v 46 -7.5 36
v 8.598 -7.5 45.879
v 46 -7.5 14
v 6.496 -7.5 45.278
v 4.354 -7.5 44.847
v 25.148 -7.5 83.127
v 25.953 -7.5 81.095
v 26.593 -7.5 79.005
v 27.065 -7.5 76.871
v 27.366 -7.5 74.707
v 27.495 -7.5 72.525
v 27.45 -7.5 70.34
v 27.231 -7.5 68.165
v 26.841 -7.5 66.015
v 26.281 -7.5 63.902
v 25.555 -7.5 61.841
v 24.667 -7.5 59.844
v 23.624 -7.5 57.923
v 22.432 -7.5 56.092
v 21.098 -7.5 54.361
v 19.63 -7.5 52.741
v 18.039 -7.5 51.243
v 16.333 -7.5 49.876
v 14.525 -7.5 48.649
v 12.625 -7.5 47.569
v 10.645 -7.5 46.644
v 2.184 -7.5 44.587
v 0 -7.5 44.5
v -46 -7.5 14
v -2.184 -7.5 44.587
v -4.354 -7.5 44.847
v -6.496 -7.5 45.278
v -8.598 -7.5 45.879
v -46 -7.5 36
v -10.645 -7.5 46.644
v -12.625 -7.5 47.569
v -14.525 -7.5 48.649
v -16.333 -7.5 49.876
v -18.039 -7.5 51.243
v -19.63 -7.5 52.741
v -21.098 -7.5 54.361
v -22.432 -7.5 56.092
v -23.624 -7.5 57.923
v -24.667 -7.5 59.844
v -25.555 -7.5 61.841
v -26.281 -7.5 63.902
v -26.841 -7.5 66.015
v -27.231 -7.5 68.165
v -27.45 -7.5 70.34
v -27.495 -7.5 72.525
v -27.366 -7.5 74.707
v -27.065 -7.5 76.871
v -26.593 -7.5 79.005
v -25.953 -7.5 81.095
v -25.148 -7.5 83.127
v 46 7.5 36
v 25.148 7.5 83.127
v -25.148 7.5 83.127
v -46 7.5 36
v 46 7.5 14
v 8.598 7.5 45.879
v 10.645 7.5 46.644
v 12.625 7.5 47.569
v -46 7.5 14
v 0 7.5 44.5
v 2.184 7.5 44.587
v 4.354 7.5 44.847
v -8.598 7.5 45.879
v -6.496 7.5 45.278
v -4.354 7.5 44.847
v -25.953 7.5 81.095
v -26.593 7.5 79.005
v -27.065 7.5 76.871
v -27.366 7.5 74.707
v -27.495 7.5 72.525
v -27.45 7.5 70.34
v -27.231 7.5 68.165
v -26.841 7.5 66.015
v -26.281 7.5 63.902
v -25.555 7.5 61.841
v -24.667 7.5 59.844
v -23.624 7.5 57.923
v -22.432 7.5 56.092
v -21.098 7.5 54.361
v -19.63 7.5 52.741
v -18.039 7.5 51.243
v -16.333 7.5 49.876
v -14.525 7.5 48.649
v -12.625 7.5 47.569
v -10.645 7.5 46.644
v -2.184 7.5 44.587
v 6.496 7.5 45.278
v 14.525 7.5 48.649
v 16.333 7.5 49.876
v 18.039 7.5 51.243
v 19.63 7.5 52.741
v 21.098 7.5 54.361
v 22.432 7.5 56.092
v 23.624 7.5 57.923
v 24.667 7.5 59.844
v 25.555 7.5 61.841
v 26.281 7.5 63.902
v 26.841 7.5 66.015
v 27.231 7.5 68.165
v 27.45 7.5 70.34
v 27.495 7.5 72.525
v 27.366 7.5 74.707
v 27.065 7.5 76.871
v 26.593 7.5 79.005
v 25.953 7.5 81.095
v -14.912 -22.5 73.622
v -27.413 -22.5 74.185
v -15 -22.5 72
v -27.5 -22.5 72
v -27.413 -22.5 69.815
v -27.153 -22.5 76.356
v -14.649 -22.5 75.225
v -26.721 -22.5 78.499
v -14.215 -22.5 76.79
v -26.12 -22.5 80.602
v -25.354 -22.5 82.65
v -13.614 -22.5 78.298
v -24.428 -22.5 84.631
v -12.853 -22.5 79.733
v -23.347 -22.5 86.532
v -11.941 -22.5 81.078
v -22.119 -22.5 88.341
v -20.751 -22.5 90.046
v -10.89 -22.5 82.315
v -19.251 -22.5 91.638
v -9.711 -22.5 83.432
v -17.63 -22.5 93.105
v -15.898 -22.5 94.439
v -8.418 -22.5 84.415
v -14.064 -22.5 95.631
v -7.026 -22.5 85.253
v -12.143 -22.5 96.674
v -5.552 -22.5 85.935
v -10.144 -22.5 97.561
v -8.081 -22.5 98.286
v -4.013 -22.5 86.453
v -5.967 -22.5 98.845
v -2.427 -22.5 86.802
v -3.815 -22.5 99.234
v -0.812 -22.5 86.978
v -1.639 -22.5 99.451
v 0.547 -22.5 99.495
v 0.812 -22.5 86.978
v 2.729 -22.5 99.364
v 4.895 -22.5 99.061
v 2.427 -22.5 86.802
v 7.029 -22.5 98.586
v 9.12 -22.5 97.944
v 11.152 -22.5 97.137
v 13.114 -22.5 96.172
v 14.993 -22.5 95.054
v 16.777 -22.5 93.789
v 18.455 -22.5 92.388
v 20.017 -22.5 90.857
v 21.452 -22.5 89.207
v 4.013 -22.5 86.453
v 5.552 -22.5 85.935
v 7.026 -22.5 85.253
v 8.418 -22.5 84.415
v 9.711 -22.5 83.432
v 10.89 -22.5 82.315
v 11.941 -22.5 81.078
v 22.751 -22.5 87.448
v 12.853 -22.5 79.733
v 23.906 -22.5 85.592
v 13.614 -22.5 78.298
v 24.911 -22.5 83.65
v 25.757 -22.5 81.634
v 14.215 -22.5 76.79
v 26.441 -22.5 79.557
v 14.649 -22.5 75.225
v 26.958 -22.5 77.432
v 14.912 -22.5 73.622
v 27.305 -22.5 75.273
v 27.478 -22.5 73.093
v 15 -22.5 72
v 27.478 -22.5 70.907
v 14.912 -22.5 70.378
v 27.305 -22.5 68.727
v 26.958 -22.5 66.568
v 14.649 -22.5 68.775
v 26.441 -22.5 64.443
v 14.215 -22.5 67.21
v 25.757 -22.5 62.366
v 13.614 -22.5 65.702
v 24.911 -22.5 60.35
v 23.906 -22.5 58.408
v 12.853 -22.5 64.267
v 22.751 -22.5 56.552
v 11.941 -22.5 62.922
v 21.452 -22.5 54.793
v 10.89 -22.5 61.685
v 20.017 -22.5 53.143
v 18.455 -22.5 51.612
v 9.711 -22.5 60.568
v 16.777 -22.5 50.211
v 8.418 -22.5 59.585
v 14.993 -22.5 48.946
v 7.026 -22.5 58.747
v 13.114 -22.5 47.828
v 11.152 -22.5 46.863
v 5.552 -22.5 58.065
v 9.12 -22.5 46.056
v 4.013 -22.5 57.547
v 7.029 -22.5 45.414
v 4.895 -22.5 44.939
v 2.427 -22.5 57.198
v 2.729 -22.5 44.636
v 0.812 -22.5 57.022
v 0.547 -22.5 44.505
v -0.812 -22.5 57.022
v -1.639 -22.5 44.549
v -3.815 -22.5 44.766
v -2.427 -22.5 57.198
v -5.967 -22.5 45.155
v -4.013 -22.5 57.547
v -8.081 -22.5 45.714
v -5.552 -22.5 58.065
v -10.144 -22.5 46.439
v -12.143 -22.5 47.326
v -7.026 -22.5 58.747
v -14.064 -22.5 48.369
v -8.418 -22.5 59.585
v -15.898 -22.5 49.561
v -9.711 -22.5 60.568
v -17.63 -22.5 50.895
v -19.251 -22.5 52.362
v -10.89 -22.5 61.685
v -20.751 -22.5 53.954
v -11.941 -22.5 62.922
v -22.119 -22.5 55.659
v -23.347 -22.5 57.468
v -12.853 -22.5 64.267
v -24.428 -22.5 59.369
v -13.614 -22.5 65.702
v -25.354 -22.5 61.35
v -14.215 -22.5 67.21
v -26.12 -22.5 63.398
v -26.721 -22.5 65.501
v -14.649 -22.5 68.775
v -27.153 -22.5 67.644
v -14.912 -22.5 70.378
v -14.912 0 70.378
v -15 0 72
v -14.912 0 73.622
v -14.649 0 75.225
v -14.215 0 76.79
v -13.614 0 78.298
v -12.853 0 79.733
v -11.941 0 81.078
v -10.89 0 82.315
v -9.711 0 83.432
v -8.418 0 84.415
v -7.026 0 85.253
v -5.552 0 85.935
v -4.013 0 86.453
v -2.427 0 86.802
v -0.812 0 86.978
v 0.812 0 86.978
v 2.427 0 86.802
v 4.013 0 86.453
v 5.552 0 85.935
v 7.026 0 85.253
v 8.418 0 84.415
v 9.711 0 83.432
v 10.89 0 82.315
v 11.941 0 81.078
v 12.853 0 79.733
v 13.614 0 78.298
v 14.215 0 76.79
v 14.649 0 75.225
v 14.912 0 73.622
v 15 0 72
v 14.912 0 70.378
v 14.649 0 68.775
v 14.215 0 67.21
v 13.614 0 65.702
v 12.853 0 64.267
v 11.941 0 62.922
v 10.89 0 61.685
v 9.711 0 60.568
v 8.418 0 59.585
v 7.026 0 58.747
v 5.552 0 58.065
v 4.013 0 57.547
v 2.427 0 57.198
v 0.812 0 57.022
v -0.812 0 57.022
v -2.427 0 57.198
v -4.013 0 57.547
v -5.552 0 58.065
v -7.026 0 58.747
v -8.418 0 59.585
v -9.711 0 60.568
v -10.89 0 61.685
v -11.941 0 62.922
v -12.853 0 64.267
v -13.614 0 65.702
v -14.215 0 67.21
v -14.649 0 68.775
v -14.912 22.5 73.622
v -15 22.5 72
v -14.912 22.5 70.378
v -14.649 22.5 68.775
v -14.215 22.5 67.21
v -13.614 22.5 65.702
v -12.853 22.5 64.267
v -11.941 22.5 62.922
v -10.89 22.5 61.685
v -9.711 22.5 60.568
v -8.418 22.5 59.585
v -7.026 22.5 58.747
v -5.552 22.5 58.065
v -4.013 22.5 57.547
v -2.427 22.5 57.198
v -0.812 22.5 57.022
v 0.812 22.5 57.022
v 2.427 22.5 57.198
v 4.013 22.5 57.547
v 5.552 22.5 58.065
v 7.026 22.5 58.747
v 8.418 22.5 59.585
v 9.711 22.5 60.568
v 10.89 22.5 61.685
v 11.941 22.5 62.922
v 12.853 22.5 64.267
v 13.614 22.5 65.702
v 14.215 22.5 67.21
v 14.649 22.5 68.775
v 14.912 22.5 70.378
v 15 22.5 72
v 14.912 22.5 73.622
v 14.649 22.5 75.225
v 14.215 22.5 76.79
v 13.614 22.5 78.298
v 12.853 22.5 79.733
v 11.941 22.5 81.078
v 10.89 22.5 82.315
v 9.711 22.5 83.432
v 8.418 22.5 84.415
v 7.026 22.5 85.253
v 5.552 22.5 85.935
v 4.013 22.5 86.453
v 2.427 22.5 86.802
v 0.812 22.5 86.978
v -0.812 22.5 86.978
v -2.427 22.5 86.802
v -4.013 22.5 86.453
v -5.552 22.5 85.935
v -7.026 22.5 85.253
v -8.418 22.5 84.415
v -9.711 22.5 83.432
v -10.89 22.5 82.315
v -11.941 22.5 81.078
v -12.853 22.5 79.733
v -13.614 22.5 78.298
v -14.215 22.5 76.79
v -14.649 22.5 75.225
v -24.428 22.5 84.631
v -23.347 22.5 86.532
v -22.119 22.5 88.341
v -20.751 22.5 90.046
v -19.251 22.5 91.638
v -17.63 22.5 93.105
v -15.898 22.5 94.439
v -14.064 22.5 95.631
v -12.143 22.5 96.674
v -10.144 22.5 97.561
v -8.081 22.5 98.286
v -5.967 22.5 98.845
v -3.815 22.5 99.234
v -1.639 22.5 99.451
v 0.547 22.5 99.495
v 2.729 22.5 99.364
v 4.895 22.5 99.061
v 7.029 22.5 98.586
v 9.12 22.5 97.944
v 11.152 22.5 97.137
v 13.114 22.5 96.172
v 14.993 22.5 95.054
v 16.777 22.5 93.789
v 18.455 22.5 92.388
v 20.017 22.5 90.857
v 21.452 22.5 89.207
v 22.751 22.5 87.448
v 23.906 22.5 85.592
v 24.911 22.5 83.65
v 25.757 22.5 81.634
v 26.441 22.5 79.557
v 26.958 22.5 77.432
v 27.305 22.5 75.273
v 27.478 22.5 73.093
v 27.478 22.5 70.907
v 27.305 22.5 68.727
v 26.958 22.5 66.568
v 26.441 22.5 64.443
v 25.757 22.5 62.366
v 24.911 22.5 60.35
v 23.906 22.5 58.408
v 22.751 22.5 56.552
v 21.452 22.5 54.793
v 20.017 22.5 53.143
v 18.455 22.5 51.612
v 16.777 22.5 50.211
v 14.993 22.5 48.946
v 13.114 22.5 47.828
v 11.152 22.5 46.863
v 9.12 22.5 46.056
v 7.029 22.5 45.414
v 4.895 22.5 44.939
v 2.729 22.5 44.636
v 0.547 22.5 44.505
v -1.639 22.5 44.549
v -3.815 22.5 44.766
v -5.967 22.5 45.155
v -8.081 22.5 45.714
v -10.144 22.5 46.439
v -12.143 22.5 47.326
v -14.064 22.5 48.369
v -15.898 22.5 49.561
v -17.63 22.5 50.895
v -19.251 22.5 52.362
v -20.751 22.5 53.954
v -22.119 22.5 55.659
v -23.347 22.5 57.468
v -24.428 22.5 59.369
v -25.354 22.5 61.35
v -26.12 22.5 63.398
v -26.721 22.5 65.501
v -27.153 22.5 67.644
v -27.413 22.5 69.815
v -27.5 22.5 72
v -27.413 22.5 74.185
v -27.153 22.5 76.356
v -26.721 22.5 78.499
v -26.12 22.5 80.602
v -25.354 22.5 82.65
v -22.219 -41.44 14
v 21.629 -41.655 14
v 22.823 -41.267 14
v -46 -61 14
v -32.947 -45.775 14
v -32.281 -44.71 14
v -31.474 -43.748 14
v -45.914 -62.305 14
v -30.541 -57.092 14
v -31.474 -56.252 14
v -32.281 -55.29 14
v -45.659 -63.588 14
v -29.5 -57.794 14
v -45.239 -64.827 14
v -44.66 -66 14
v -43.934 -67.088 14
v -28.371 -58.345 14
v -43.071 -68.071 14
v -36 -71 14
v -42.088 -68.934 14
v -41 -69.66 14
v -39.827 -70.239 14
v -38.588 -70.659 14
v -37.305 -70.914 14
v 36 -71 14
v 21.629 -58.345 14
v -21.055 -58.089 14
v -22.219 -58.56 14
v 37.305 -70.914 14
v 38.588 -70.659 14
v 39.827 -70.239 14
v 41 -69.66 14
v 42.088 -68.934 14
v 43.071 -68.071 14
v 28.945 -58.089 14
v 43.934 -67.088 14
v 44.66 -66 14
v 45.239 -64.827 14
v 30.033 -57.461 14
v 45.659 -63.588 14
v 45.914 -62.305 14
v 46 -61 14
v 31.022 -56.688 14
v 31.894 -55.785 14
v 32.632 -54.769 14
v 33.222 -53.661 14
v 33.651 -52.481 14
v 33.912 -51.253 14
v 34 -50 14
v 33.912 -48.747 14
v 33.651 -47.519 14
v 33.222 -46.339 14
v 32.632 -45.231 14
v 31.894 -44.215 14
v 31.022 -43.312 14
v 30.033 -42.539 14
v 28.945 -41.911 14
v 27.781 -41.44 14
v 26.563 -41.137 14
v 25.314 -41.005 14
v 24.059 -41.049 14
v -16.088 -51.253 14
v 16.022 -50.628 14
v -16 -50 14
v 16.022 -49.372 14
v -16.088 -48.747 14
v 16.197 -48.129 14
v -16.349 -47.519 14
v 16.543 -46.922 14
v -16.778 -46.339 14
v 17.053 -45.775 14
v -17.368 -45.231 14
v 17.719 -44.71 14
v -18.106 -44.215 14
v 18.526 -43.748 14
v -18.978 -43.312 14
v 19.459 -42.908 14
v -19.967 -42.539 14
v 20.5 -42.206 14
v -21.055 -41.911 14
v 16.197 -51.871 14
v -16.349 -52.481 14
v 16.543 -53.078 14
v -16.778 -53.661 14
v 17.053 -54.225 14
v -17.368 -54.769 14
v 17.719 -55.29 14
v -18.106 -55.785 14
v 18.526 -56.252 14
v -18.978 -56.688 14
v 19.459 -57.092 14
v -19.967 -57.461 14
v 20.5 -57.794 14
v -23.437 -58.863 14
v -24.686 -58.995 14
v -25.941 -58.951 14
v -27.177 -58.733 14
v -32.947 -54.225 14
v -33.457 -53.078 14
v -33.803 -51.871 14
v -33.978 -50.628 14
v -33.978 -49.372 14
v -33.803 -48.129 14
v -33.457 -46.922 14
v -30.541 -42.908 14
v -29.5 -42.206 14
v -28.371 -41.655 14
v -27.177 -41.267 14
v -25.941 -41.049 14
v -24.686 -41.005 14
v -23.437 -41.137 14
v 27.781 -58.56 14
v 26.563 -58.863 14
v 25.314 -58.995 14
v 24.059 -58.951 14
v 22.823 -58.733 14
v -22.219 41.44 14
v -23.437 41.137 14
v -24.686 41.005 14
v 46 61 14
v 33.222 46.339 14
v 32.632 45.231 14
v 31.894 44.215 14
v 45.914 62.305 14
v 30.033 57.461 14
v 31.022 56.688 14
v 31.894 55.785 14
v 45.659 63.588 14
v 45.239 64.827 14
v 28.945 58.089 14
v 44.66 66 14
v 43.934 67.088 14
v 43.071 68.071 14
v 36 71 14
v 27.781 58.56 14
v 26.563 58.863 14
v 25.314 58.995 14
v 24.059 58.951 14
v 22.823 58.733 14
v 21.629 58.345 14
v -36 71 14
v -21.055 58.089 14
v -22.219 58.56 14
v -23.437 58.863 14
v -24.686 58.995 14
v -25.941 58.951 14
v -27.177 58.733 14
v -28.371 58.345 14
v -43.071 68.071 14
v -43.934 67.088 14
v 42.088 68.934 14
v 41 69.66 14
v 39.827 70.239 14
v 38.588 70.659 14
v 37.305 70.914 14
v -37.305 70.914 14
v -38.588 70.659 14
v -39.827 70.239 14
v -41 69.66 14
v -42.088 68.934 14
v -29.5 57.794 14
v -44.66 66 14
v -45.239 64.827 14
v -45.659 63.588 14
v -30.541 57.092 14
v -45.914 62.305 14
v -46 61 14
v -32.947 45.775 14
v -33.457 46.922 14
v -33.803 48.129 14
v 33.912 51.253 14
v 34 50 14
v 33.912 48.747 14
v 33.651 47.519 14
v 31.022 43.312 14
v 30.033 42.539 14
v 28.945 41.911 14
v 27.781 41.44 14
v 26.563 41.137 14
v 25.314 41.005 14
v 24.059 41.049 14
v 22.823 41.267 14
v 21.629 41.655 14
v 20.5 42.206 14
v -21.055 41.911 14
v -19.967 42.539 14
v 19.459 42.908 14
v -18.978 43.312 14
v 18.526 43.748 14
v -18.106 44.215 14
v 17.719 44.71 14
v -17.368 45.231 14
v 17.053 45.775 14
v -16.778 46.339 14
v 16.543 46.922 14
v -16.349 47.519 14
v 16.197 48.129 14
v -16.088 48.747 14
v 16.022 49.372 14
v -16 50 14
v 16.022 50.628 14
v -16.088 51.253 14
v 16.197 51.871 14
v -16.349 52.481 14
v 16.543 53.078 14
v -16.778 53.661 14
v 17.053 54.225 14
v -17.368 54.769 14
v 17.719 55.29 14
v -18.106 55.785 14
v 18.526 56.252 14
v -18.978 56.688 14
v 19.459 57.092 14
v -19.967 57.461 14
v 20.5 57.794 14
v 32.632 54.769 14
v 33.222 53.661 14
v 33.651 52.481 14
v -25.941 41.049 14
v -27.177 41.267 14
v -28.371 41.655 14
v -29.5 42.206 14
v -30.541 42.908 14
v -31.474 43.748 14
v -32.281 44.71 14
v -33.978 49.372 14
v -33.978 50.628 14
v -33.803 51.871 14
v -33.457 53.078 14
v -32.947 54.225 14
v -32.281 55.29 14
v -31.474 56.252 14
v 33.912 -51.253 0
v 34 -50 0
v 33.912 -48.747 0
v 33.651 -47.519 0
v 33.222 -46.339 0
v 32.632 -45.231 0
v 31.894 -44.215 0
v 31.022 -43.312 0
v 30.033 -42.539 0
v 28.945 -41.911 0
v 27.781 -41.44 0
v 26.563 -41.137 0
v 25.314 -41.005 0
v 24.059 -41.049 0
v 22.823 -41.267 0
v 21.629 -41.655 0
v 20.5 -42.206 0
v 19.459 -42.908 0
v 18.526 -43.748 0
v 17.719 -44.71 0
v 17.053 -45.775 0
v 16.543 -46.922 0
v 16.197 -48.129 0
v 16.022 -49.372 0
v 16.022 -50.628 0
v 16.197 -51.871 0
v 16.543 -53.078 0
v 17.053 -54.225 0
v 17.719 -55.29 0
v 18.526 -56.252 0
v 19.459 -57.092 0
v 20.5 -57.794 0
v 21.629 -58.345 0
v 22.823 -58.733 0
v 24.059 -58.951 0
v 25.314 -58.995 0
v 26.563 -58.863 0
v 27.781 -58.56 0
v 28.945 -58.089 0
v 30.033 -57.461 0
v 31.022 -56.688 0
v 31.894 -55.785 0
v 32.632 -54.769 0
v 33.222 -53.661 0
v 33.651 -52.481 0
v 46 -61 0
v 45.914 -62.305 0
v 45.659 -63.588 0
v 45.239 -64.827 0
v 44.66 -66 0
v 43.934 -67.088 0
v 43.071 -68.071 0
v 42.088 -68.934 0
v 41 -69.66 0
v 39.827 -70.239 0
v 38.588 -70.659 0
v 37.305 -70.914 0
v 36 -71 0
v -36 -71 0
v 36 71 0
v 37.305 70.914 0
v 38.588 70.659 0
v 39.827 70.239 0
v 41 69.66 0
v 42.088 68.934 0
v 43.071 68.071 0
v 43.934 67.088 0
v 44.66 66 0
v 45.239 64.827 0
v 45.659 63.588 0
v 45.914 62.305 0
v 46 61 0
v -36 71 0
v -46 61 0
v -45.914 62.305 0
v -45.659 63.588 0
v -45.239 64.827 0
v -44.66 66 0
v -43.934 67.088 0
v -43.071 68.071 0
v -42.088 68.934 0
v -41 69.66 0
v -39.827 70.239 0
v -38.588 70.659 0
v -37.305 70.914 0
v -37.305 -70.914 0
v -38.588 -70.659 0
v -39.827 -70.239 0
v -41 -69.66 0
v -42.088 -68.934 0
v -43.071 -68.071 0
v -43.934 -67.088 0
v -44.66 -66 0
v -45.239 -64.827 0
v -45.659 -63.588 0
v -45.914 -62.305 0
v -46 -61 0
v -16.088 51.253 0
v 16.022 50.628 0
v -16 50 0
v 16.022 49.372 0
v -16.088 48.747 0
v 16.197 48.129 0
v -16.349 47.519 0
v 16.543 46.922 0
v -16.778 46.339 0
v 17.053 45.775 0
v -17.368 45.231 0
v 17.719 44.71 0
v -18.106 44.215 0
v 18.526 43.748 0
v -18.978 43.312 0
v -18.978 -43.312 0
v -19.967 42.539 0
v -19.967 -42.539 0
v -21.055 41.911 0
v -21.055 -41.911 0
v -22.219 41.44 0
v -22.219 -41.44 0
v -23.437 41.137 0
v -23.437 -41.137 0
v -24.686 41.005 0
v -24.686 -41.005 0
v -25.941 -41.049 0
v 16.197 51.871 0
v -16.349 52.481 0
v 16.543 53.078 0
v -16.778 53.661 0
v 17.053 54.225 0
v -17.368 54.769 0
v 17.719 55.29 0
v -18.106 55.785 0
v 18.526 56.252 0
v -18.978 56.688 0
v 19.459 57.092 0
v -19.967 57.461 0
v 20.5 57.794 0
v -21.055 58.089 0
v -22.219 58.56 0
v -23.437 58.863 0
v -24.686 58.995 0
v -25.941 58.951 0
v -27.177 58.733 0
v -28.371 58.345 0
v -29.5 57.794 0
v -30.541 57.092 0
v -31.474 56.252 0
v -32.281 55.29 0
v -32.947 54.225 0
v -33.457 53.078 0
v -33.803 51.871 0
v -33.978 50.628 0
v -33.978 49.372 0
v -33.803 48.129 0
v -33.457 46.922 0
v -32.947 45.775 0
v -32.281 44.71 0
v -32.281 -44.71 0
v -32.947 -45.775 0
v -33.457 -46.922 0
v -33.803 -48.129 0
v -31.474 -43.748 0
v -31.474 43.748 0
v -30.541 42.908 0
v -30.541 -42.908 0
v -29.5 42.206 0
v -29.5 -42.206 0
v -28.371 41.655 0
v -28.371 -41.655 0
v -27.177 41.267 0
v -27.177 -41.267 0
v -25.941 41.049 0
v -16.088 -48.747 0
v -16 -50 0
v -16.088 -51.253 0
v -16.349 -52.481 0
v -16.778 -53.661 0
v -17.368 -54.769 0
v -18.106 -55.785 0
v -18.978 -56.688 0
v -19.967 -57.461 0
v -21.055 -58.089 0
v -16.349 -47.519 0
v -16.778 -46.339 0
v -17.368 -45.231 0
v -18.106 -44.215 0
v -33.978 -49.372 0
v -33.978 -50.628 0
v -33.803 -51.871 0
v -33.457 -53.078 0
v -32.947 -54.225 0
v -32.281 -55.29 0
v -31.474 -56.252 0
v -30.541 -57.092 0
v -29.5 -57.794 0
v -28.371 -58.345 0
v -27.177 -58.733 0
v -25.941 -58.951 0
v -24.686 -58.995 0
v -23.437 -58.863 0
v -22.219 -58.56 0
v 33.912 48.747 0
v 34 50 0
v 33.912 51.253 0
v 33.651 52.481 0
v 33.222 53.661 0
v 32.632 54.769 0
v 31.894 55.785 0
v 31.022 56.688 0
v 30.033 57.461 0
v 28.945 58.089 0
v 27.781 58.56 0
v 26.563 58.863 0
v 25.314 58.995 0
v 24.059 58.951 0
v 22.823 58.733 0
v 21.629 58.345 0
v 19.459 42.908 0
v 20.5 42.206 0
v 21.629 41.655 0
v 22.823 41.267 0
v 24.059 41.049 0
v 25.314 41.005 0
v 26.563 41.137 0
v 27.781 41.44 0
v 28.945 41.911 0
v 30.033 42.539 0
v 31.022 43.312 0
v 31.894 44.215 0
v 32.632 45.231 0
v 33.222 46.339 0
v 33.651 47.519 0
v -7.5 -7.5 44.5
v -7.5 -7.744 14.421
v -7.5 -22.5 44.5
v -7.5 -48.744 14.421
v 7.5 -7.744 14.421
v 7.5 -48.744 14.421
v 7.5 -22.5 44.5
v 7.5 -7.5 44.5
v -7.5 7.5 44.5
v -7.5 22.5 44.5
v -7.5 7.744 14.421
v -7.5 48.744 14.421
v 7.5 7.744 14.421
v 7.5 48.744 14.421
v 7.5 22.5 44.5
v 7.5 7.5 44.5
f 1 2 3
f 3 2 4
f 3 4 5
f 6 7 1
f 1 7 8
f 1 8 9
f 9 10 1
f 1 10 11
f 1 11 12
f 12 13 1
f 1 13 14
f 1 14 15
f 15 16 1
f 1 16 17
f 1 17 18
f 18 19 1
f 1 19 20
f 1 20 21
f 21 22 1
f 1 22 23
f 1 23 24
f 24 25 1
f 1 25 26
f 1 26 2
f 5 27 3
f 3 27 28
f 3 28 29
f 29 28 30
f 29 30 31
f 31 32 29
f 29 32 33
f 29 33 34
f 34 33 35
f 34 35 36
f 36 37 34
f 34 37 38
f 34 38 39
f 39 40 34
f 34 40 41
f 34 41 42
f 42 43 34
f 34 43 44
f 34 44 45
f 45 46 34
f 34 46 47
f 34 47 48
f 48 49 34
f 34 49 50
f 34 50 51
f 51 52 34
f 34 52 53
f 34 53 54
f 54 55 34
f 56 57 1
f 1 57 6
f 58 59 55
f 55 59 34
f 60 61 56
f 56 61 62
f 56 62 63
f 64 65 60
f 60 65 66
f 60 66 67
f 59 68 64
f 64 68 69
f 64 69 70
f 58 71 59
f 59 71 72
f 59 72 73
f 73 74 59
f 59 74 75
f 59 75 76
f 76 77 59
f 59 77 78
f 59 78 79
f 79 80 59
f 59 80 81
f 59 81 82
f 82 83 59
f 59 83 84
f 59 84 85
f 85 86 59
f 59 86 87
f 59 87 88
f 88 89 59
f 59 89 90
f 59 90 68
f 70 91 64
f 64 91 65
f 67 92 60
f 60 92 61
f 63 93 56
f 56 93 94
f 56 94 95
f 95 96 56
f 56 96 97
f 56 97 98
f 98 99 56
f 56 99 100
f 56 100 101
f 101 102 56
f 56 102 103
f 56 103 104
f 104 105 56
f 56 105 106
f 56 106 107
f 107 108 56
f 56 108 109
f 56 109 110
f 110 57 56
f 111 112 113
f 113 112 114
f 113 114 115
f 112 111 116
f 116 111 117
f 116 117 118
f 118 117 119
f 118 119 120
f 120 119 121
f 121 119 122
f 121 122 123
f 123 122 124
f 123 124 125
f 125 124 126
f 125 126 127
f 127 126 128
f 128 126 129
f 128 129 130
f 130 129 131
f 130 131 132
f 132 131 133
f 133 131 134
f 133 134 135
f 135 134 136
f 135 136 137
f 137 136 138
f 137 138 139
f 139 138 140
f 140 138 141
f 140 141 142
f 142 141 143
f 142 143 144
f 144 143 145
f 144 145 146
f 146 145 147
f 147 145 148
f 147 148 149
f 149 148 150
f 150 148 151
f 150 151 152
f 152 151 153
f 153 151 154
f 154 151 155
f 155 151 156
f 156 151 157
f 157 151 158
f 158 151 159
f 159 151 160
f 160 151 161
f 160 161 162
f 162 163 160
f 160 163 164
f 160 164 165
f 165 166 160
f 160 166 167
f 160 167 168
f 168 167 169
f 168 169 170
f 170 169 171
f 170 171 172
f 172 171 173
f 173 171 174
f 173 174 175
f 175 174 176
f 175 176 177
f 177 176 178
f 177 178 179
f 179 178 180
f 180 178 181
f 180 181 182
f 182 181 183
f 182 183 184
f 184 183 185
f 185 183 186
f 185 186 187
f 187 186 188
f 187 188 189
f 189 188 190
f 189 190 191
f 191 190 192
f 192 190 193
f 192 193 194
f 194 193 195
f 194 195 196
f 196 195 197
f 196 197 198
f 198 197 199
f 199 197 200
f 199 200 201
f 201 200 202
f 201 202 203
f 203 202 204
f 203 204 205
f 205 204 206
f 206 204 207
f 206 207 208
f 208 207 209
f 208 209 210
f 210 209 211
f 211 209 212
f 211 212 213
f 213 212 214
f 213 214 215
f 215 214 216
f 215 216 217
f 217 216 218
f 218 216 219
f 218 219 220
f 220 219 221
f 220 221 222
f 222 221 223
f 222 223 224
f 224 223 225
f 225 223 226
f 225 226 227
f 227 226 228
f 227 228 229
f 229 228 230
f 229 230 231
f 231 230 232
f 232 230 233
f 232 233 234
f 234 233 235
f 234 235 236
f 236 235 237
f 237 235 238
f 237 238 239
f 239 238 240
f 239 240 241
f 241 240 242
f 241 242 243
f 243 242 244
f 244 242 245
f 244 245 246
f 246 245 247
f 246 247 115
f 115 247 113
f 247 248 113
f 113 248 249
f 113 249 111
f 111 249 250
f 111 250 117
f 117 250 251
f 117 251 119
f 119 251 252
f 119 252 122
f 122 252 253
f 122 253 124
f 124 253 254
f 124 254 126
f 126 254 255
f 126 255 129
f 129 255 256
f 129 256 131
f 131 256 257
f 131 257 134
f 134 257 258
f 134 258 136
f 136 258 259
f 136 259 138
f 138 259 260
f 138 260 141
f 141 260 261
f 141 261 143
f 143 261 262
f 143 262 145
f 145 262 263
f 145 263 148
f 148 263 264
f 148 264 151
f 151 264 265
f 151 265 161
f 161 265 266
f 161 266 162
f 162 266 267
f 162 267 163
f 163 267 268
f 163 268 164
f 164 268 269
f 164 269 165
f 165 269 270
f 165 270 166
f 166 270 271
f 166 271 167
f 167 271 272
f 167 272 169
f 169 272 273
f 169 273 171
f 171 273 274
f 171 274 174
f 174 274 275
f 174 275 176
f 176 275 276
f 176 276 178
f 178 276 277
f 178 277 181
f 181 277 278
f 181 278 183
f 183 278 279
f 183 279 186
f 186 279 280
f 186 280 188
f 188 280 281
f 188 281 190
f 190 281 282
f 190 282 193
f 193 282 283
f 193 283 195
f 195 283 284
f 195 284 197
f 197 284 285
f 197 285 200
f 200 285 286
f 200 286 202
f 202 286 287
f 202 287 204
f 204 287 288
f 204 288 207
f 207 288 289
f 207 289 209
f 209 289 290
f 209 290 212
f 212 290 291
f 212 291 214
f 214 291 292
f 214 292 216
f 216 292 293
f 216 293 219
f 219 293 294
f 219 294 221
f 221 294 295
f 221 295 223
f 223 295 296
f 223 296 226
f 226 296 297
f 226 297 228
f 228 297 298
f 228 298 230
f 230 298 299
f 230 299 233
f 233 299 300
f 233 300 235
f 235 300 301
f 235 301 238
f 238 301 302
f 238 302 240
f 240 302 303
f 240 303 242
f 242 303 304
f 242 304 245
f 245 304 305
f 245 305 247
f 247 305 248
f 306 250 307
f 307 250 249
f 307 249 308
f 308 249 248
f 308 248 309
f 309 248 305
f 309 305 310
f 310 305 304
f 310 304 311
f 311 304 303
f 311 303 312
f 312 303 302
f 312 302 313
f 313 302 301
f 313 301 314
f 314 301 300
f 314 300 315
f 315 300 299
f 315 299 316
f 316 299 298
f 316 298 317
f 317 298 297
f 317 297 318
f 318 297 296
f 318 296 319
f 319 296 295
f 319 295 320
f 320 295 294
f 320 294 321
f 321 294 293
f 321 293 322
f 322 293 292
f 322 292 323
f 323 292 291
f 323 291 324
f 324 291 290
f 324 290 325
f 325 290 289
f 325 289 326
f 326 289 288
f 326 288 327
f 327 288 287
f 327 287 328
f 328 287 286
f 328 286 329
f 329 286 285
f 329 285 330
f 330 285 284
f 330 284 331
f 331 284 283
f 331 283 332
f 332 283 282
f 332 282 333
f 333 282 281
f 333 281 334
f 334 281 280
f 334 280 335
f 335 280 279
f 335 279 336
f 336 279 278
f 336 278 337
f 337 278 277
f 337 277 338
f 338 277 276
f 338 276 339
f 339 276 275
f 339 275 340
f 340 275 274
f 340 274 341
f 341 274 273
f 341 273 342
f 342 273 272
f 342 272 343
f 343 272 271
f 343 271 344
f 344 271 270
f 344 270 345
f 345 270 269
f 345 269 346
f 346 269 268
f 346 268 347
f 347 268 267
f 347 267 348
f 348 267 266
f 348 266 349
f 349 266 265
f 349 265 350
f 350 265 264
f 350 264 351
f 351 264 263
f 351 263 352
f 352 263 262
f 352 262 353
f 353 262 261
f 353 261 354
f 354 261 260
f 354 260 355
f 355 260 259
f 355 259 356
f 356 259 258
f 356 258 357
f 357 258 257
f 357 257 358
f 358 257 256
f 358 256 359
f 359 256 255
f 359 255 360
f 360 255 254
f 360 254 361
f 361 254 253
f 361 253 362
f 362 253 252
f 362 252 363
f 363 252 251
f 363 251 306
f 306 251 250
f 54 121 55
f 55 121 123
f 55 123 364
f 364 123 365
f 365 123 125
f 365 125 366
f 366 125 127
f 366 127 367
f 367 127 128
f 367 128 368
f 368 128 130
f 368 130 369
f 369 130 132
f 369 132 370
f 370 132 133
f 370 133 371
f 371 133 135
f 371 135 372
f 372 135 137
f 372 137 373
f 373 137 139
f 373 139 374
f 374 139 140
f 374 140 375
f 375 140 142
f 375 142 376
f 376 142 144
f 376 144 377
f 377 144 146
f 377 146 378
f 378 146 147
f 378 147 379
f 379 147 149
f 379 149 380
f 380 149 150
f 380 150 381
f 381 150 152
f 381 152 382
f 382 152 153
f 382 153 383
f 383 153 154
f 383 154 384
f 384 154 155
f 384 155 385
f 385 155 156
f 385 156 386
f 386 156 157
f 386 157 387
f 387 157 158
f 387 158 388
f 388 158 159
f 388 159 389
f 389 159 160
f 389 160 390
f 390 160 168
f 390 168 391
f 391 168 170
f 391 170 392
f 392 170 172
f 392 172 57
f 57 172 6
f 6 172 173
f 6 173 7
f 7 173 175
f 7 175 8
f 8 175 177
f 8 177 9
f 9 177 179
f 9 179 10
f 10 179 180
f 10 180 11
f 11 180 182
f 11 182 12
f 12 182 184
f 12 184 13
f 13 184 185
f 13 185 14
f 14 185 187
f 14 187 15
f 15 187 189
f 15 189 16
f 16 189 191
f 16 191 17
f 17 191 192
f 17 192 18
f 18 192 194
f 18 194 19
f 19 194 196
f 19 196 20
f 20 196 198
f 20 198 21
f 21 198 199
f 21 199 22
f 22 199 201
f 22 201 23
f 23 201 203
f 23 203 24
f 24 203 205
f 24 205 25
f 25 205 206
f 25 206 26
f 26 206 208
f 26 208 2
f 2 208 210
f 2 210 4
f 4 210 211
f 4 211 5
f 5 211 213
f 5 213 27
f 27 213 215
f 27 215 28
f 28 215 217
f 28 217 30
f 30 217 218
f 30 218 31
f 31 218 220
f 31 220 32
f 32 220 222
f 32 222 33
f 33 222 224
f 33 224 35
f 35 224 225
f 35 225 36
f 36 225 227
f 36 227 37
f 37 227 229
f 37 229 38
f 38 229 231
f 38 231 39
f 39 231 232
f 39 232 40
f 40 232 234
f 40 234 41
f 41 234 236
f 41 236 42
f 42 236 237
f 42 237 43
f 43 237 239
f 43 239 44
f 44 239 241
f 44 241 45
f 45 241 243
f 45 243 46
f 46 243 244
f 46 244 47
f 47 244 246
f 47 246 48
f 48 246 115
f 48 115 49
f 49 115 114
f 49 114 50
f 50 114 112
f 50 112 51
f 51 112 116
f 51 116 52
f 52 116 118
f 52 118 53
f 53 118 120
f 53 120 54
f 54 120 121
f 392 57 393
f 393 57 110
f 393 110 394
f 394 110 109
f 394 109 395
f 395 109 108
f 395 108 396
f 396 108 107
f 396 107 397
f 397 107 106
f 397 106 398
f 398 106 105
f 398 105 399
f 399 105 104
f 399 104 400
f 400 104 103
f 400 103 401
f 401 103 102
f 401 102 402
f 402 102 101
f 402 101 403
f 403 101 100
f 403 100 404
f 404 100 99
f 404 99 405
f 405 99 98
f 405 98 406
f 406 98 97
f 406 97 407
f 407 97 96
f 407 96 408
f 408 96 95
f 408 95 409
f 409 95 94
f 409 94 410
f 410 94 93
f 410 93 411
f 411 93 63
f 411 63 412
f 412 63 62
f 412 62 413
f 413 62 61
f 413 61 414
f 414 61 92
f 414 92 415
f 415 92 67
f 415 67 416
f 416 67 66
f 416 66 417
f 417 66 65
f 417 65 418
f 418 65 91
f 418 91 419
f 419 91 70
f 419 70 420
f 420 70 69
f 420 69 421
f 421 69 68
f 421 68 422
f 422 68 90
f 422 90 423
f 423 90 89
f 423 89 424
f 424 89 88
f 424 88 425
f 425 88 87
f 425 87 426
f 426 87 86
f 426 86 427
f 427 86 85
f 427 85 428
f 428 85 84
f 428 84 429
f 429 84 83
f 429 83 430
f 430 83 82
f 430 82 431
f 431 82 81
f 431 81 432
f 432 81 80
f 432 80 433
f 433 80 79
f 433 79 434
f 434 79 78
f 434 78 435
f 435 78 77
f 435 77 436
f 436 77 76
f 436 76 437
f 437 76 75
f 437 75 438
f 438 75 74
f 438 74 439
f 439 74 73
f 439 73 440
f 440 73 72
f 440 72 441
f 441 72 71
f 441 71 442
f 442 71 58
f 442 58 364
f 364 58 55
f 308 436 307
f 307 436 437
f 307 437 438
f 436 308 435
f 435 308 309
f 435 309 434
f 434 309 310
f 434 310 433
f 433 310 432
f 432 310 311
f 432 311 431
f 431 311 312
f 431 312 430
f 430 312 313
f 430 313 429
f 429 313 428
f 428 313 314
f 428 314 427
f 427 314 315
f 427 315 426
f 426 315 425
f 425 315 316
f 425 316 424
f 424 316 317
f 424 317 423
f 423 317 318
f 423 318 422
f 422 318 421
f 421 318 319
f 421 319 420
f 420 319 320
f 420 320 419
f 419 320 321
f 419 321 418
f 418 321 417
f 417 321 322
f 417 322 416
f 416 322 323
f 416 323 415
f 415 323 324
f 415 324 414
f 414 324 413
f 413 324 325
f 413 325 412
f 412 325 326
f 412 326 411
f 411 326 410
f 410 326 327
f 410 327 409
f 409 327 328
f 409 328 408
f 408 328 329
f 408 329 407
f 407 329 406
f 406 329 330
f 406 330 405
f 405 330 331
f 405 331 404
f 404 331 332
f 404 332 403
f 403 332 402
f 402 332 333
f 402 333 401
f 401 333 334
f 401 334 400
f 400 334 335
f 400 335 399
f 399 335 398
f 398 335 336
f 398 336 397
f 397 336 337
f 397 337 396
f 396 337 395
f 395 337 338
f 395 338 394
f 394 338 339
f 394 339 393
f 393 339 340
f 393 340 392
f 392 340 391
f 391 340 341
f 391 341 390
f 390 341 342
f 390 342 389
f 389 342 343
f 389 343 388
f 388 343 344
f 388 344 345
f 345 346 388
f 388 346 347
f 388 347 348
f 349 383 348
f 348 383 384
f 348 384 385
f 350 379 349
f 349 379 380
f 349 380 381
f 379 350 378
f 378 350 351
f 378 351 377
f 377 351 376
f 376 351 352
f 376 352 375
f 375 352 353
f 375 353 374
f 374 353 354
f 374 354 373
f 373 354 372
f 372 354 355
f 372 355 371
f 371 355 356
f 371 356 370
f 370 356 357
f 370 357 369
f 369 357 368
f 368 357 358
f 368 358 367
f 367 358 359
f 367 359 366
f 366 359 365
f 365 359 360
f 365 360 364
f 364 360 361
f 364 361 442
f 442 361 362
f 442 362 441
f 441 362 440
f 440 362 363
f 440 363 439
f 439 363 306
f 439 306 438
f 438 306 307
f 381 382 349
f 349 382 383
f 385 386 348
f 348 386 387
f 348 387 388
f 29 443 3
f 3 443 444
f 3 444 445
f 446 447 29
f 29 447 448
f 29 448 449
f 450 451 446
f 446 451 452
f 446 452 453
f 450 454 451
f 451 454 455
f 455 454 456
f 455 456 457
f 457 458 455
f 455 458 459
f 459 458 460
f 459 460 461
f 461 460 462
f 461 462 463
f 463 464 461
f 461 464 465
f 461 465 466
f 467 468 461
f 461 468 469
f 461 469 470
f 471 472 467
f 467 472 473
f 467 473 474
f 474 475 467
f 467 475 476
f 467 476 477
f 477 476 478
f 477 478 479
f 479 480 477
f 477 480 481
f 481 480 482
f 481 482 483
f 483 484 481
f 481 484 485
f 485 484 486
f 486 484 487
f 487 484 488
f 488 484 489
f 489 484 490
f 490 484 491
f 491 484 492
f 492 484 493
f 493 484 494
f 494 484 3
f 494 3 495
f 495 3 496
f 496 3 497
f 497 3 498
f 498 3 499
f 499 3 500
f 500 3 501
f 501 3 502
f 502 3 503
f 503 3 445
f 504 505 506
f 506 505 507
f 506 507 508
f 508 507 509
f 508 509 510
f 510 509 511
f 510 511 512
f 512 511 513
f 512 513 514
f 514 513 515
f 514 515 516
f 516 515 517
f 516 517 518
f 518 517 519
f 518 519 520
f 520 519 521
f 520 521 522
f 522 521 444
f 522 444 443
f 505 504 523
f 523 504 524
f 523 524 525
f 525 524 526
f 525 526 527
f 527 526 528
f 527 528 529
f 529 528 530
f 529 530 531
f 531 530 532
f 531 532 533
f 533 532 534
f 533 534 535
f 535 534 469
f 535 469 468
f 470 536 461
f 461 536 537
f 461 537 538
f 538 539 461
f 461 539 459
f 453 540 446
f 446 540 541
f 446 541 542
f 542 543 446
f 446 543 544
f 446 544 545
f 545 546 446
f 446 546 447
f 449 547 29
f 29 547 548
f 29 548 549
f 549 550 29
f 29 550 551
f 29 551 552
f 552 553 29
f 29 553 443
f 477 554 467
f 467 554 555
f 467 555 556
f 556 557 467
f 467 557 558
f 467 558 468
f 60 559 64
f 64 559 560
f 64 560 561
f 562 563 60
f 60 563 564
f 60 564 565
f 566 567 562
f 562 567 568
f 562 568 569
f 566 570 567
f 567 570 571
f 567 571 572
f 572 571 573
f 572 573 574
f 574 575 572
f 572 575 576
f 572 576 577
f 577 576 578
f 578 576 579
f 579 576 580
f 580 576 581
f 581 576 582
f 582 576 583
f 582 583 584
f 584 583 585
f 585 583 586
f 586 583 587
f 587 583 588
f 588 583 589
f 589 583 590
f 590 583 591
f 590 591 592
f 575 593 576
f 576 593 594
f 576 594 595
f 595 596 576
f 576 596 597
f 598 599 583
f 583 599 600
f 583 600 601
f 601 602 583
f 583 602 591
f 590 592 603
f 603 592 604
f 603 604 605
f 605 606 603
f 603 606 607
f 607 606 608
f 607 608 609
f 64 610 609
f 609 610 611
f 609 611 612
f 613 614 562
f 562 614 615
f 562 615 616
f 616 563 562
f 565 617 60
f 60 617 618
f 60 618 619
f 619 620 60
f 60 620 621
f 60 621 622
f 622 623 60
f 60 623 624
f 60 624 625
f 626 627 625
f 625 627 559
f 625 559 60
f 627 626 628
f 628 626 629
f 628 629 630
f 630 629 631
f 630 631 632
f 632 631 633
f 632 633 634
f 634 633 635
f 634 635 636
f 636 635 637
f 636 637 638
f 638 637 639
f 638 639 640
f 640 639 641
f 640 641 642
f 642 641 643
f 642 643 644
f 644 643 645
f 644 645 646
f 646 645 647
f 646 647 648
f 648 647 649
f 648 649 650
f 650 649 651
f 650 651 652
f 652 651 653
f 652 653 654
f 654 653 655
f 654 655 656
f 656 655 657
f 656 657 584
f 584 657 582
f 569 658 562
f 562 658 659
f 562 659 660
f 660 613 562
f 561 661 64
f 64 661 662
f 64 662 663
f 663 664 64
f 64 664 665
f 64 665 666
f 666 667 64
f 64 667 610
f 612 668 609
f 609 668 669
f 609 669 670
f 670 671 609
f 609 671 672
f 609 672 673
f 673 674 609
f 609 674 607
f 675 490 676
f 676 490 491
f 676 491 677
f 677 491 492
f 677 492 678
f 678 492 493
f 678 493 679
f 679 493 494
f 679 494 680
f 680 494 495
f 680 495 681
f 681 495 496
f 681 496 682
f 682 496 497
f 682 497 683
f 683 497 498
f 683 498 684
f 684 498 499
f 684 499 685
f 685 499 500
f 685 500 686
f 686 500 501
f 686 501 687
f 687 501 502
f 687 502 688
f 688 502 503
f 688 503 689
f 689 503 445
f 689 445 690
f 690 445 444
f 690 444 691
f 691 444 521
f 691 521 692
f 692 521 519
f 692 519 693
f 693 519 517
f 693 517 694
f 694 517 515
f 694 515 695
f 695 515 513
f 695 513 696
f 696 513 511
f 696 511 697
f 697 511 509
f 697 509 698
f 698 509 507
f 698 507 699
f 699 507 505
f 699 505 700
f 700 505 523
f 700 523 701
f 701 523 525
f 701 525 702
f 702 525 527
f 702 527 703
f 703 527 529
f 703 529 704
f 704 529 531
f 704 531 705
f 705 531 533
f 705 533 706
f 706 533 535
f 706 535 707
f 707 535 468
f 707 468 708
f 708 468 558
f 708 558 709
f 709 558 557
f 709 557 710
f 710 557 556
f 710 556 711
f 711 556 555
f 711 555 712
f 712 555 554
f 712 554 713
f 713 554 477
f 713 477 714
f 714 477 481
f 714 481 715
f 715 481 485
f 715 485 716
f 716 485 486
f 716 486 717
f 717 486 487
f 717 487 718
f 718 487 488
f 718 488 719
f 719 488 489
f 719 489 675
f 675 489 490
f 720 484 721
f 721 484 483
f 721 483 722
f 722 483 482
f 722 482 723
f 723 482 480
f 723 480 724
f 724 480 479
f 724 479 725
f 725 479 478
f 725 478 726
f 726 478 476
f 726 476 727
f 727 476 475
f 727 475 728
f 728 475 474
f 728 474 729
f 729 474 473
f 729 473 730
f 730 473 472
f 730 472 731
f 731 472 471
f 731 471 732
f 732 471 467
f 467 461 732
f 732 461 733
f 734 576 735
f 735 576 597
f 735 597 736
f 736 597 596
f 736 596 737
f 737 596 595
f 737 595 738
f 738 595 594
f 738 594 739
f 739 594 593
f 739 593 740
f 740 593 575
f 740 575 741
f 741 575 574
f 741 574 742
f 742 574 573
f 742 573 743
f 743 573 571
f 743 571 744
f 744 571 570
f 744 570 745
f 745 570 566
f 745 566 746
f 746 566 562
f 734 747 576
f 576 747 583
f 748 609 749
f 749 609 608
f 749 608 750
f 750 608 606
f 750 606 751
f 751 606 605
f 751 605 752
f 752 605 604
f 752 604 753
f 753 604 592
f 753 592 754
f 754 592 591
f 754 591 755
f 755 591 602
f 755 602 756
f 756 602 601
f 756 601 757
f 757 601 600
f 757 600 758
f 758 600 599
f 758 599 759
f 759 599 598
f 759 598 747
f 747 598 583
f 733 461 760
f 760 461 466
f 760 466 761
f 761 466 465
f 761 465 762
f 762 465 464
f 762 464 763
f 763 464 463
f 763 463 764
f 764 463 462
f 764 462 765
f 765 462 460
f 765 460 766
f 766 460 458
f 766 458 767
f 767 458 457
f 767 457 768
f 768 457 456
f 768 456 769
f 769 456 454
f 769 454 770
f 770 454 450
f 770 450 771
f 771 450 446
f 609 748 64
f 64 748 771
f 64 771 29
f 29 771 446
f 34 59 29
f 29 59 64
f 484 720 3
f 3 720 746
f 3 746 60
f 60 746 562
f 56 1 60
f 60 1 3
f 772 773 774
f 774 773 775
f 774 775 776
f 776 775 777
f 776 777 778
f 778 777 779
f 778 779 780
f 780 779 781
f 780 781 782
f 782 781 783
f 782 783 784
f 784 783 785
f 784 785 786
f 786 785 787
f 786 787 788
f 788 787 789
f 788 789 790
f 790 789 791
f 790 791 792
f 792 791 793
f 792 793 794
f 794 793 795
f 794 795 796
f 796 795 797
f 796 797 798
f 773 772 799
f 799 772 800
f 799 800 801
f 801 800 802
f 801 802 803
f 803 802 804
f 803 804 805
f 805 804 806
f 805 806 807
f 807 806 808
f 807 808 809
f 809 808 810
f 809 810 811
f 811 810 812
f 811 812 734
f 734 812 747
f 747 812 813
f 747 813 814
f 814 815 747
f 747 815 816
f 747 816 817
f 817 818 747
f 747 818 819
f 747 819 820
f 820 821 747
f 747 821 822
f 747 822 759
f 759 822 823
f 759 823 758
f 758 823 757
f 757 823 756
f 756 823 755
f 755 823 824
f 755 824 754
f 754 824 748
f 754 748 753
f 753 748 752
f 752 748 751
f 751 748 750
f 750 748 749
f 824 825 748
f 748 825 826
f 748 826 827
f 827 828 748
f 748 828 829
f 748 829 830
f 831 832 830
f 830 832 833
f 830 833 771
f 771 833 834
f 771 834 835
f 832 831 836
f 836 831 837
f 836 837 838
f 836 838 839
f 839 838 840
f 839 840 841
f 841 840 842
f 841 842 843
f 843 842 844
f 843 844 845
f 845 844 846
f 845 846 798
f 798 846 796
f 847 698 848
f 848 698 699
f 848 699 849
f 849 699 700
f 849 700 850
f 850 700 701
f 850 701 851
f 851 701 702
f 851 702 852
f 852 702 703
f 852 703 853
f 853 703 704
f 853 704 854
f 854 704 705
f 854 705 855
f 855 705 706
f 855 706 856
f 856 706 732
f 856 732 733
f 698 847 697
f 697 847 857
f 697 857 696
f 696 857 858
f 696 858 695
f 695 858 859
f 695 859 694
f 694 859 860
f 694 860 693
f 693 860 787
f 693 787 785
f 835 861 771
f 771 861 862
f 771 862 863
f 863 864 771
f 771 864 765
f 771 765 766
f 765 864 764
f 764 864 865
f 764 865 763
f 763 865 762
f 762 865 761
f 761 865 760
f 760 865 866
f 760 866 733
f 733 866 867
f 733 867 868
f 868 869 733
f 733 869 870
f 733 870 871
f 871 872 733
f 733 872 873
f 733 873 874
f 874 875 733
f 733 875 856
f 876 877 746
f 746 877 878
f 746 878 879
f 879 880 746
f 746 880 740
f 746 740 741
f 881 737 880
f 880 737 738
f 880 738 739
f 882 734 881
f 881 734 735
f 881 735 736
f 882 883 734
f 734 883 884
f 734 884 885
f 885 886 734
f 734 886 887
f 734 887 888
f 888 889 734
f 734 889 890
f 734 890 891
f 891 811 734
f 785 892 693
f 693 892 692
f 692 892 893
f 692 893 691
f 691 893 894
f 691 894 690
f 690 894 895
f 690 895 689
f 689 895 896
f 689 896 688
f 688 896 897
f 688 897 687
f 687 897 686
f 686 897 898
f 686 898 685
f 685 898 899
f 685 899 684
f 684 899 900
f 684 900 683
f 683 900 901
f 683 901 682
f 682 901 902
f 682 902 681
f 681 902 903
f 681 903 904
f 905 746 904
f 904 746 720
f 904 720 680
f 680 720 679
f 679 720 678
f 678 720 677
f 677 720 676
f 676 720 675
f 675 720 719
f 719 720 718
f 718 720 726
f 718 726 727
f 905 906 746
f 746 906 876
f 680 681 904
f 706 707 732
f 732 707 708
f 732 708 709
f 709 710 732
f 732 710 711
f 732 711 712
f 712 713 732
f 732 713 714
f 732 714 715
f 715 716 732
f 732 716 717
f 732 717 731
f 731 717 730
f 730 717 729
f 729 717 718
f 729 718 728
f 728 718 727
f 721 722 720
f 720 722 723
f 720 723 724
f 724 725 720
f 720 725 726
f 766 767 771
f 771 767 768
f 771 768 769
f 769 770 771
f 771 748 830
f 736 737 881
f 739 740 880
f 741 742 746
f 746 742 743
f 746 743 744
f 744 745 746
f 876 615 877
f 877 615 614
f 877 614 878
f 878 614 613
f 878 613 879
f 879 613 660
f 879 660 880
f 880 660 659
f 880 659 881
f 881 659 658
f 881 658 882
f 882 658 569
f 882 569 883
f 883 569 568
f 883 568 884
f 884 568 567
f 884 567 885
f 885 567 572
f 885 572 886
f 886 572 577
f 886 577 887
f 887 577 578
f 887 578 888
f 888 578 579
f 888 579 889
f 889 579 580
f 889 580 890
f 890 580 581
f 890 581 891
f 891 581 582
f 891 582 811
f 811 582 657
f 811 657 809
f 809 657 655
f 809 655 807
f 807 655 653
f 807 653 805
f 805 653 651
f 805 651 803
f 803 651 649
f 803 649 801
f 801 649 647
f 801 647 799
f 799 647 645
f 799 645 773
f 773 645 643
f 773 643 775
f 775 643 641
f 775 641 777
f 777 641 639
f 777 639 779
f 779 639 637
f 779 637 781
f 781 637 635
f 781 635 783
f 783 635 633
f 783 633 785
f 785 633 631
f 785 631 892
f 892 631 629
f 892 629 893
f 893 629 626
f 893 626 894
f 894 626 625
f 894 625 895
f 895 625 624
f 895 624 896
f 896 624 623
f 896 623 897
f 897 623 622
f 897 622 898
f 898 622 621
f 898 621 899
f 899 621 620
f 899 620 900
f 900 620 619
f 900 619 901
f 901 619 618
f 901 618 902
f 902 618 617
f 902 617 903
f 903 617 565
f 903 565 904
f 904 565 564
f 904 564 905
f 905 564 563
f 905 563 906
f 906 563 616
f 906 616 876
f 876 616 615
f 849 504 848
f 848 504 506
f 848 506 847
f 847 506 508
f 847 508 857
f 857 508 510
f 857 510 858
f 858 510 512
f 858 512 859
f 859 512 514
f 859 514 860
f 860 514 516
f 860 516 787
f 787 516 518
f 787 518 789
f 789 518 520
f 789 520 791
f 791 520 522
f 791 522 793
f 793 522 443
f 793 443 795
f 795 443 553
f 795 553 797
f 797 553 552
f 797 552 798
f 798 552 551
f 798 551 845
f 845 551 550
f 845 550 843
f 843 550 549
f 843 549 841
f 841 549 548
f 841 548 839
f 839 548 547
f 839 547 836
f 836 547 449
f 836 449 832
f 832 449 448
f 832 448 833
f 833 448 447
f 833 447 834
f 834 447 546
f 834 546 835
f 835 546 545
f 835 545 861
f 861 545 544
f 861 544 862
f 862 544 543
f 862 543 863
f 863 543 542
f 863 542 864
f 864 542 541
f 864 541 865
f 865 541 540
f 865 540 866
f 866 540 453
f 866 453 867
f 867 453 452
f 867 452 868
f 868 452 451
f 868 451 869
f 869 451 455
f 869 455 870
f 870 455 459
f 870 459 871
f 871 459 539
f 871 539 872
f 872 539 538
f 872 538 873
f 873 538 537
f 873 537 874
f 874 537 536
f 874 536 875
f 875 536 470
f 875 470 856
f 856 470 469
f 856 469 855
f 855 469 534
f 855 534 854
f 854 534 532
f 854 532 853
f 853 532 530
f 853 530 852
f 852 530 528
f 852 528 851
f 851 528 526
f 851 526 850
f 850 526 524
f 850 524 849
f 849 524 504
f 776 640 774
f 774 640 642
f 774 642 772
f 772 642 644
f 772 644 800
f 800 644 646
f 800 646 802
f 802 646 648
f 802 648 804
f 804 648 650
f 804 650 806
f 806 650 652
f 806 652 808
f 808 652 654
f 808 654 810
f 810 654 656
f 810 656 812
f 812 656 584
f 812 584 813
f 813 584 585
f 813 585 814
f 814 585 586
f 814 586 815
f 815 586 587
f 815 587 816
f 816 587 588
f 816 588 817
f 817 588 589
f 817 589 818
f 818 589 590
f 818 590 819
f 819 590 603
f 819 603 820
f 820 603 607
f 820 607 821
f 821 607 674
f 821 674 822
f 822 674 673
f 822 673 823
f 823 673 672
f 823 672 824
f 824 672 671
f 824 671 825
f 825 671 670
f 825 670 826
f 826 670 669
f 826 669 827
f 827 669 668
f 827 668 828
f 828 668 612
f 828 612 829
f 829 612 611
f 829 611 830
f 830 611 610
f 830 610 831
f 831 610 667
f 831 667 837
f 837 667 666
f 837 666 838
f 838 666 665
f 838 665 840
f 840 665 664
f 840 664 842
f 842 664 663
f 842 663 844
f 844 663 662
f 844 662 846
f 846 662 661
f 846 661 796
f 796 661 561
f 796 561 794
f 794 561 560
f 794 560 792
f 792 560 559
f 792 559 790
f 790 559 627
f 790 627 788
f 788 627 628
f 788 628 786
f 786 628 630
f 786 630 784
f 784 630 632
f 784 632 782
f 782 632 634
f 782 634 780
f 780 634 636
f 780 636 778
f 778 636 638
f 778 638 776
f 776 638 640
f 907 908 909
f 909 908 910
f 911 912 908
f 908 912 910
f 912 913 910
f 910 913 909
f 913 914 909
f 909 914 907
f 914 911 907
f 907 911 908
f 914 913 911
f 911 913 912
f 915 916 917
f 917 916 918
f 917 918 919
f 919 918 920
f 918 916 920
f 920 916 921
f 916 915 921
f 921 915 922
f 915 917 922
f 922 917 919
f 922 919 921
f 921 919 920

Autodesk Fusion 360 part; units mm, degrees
sketch "Sketch1" plane through (0, 0, 0) normal (0, 0, 1) x (1, 0, 0)
  line L0 (-46, 71) -> (46, 71)
  line L1 (46, 71) -> (46, -71)
  line L2 (46, -71) -> (-46, -71)
  line L3 (-46, -71) -> (-46, 71)
  line L4 (-46, 71) -> (46, -71) construction
  line L5 (46, 71) -> (-46, -71) construction
  dimension "d1" = 92
  dimension "d2" = 142
extrude "Extrude1" add sketch "Sketch1" along normal blind 14 makes body 1
fillet "Fillet1" radius 10 4 edges at (-46, -71, 7) (-46, 71, 7) (46, 71, 7) (46, -71, 7) on bodies 1
sketch "Sketch2" plane through (0, 0, 14) normal (0, 0, 1) x (-1, 0, 0)
  arc A0 (-36, 71) -> (-46, 61) centre (-36, 61) ccw
  line L0 (-46, 61) -> (-46, -61)
  arc A1 (-46, -61) -> (-36, -71) centre (-36, -61) ccw
  line L1 (-36, -71) -> (36, -71)
  arc A2 (36, -71) -> (46, -61) centre (36, -61) ccw
  line L2 (46, -61) -> (46, 61)
  arc A3 (46, 61) -> (36, 71) centre (36, 61) ccw
  line L3 (36, 71) -> (-36, 71)
  circle A4 centre (-25, 50) radius 9
  dimension "d7" = 18
  dimension "d8" = 21
  dimension "d9" = 21
extrude "Extrude2" cut sketch "Sketch2" against normal through all contours A4 bodies 1
pattern_linear "R-Pattern1" count 2 spacing 100 along (0, 1, 0) count 2 spacing 50 along (-1, 0, 0) of "Extrude2"
sketch "Sketch3" plane through (0, 0, 0) normal (0, 1, 0) x (1, 0, 0)
  circle A0 centre (0, -72) radius 15
  circle A1 centre (0, -72) radius 27.5
  line L0 (36, -14) -> (-36, -14)
  dimension "d16" = 30
  dimension "d17" = 55
extrude "Extrude3" add sketch "Sketch3" along normal mid plane 45 separate body makes body 2
sketch "Sketch4" plane through (0, 0, 0) normal (0, 1, 0) x (1, 0, 0)
  line L0 (-46, -14) -> (-46, -36)
  line L1 (-46, -36) -> (-25.1484, -83.127)
  line L2 (-25.1484, -83.127) -> (-25.1483, -83.127)
  arc A0 (-25.1483, -83.127) -> (25.1484, -83.127) centre (0, -72) ccw
  line L3 (46, -36) -> (46, -14)
  line L4 (46, -14) -> (-46, -14)
  line L5 (25.1484, -83.127) -> (46, -36)
  circle A1 centre (0, -72) radius 27.5
  point P0 (46, -14)
  point P1 (-46, -14)
  dimension "d21" = 22
extrude "Extrude4" add sketch "Sketch4" along normal mid plane 15 contours L0 L1 L3 L4 L5 A1 bodies 1 2
sketch "Sketch5" plane through (0, 0, 0) normal (1, 0, 0) x (0, 1, 0)
  line L0 (-7.7437, 14.4207) -> (-48.7437, 14.4207)
  line L1 (-22.5, 44.5) -> (-48.7437, 14.4207)
  line L2 (-22.5, 99.5) -> (-22.5, 44.5)
  curve A0
  line L3 (-7.7437, 14.4207) -> (-7.5, 44.5)
  line L4 (-7.5, 44.5) -> (-22.5, 44.5)
  dimension "d24" = 41
extrude "Extrude5" add sketch "Sketch5" along normal mid plane 15 separate body makes body 3
mirror "Mirror1" about plane through (0, 0, 0) normal (0, 1, 0) of bodies 3 makes body 4
